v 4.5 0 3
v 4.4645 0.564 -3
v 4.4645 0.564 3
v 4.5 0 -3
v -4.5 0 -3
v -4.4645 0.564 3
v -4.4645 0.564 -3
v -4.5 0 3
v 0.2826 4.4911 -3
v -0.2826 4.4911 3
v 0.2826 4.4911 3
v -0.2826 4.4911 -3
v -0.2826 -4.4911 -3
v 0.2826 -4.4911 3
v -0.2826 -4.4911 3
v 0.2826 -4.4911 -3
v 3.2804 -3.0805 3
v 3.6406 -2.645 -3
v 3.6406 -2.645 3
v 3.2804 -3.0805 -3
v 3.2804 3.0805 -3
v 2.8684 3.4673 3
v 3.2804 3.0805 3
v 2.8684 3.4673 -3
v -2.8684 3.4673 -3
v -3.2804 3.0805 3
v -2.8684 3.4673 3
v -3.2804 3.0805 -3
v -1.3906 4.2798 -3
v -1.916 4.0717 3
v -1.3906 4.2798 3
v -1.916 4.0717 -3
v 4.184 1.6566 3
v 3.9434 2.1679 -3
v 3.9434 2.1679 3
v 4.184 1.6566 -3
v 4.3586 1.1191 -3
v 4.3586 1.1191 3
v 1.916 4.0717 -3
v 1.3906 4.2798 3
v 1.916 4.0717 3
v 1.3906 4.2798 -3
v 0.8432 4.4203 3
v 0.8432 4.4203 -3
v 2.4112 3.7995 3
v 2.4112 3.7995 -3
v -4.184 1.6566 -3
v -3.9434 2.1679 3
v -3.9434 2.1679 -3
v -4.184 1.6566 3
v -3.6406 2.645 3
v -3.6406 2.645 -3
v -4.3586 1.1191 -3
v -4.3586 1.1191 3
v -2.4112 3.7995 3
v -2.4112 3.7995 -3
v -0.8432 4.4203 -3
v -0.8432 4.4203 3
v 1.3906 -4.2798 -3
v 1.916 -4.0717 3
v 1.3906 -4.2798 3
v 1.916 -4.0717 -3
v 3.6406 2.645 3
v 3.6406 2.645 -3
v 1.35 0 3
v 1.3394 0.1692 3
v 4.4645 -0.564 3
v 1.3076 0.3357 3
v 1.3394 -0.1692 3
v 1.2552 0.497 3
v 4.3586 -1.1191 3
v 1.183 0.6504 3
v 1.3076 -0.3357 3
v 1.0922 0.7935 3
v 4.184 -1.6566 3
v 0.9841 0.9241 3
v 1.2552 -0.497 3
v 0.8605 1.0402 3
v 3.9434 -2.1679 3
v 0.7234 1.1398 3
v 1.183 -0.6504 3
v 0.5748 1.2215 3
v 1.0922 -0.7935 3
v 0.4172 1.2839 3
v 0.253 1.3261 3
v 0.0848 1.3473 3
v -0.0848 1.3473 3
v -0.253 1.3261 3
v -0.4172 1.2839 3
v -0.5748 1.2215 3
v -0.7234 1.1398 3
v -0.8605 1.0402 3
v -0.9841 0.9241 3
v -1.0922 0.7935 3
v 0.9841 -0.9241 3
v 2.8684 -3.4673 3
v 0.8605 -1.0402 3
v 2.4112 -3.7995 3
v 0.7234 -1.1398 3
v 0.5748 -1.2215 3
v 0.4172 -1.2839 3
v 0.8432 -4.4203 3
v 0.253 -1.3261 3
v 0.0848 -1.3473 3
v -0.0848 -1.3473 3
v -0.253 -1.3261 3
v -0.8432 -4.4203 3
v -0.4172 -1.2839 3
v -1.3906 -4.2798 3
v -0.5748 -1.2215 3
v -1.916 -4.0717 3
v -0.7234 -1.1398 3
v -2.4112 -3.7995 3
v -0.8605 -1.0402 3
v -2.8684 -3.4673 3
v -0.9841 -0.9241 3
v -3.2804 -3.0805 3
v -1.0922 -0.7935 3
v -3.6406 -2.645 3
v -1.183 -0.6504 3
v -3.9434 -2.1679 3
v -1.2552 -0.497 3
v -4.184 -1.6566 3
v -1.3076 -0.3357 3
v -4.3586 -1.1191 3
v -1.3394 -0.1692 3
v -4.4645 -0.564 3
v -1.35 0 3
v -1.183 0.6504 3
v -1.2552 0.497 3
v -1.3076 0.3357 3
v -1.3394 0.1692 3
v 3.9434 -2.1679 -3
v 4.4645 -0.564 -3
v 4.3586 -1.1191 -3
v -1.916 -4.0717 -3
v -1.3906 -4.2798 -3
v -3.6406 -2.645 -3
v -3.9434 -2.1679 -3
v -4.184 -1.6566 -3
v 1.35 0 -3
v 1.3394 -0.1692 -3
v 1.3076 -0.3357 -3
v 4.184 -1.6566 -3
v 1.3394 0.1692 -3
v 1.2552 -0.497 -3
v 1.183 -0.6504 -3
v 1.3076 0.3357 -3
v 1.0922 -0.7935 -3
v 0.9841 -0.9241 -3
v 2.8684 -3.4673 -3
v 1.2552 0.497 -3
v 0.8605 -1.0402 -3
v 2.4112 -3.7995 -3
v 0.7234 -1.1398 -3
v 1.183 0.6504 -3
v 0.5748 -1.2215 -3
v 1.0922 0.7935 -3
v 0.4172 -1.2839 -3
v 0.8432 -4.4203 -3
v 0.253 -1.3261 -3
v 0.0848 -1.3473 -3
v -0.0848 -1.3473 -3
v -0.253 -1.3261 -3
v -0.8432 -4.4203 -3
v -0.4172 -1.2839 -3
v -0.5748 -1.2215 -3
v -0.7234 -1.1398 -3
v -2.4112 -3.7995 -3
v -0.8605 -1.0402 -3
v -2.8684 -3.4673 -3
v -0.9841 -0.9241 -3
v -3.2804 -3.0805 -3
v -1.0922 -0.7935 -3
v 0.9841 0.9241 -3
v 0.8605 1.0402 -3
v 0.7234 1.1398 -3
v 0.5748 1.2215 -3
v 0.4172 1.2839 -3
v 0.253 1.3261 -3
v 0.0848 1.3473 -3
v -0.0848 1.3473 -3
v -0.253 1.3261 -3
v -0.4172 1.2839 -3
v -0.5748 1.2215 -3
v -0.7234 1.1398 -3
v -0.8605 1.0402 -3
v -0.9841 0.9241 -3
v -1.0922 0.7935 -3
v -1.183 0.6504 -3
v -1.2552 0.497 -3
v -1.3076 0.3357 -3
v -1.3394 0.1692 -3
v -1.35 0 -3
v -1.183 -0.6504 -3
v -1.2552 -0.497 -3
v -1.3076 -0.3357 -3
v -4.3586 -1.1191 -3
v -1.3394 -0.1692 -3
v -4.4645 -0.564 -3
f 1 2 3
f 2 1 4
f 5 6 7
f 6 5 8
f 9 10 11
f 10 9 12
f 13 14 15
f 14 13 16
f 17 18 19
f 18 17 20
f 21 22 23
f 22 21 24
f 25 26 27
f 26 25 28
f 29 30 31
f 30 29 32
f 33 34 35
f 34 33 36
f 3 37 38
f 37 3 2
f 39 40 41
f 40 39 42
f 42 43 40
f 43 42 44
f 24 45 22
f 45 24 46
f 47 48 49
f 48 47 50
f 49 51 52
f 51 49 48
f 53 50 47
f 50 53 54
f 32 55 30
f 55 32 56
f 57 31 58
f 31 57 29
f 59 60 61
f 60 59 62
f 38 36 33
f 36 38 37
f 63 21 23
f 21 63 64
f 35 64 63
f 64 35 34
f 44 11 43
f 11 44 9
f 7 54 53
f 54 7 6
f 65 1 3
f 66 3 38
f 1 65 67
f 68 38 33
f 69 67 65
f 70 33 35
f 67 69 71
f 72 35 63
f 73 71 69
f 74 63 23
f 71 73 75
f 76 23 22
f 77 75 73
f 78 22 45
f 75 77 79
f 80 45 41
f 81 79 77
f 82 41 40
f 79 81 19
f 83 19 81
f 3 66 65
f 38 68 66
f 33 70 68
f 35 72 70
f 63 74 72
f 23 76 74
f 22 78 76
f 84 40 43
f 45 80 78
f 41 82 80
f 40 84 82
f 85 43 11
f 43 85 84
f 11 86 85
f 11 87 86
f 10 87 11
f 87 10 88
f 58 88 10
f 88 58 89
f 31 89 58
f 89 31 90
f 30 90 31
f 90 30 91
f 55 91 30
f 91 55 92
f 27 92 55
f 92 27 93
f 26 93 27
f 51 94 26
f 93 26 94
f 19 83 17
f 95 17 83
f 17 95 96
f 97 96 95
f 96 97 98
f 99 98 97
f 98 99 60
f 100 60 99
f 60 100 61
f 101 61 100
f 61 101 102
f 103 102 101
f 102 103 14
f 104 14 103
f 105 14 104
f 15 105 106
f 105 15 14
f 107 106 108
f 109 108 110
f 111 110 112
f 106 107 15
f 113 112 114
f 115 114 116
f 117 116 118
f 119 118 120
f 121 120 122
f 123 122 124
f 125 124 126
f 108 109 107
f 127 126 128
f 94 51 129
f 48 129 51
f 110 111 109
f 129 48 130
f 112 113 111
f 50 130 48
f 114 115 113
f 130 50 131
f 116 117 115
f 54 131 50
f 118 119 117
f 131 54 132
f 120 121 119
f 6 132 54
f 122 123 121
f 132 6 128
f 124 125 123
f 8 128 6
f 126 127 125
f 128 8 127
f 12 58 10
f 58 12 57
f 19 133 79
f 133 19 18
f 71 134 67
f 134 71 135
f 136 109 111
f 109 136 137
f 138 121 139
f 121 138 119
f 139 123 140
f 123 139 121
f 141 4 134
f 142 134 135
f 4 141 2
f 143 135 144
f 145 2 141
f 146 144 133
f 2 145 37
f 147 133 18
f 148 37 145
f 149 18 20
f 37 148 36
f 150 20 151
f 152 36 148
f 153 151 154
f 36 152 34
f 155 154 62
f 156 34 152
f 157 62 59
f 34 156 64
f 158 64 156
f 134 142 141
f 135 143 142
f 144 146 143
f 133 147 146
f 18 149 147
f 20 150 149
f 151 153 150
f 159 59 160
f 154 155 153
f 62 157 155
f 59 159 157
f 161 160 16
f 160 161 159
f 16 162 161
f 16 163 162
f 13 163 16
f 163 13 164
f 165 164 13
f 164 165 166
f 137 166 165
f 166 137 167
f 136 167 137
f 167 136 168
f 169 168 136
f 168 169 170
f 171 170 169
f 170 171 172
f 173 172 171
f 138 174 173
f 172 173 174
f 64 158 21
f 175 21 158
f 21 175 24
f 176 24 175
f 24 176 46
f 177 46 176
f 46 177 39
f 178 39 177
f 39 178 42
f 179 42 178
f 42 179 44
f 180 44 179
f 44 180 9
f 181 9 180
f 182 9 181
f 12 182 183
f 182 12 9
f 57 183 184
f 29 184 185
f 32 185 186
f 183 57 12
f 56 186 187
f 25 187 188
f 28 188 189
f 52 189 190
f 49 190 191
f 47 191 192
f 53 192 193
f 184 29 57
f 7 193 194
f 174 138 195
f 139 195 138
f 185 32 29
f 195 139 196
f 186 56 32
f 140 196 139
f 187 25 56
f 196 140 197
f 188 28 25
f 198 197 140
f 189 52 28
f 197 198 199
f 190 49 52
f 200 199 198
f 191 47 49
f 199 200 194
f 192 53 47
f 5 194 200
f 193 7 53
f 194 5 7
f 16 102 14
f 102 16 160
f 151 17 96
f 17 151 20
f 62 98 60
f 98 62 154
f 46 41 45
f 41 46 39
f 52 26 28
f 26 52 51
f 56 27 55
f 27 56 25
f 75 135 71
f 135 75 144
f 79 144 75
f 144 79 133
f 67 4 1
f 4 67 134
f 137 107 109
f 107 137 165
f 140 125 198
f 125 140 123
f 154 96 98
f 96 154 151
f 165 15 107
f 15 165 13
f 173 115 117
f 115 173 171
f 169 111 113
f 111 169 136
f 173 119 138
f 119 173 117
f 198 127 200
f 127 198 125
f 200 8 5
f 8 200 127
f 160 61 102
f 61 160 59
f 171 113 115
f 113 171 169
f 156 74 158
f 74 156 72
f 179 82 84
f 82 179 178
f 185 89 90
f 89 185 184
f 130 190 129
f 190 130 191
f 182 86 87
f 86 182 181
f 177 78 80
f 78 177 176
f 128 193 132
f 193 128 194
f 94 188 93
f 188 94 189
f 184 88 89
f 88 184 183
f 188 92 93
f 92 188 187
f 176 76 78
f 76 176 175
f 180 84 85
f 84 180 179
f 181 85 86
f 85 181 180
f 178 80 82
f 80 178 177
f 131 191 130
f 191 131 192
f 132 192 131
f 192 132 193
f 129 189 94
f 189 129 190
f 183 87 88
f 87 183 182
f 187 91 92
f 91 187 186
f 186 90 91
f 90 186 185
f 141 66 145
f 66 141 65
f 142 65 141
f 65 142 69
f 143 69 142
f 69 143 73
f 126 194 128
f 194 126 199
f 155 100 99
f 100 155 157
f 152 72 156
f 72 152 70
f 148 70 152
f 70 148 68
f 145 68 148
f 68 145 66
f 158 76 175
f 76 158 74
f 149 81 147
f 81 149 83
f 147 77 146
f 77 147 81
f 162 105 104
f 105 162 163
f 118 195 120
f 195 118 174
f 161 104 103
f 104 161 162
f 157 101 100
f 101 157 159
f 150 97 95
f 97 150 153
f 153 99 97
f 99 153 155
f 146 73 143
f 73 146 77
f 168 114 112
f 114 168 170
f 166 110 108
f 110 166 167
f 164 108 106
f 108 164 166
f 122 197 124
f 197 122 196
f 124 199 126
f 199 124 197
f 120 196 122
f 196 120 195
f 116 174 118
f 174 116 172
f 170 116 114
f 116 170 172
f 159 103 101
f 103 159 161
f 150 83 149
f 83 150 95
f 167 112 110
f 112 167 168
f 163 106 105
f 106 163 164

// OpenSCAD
$fn = 50;


difference() {
	union() {
		translate(v = [0, 0, -3.0000000000]) {
			cylinder(h = 6, r = 4.5000000000);
		}
	}
	union() {
		translate(v = [0, 0, -100.0000000000]) {
			cylinder(h = 200, r = 1.3500000000);
		}
	}
}
